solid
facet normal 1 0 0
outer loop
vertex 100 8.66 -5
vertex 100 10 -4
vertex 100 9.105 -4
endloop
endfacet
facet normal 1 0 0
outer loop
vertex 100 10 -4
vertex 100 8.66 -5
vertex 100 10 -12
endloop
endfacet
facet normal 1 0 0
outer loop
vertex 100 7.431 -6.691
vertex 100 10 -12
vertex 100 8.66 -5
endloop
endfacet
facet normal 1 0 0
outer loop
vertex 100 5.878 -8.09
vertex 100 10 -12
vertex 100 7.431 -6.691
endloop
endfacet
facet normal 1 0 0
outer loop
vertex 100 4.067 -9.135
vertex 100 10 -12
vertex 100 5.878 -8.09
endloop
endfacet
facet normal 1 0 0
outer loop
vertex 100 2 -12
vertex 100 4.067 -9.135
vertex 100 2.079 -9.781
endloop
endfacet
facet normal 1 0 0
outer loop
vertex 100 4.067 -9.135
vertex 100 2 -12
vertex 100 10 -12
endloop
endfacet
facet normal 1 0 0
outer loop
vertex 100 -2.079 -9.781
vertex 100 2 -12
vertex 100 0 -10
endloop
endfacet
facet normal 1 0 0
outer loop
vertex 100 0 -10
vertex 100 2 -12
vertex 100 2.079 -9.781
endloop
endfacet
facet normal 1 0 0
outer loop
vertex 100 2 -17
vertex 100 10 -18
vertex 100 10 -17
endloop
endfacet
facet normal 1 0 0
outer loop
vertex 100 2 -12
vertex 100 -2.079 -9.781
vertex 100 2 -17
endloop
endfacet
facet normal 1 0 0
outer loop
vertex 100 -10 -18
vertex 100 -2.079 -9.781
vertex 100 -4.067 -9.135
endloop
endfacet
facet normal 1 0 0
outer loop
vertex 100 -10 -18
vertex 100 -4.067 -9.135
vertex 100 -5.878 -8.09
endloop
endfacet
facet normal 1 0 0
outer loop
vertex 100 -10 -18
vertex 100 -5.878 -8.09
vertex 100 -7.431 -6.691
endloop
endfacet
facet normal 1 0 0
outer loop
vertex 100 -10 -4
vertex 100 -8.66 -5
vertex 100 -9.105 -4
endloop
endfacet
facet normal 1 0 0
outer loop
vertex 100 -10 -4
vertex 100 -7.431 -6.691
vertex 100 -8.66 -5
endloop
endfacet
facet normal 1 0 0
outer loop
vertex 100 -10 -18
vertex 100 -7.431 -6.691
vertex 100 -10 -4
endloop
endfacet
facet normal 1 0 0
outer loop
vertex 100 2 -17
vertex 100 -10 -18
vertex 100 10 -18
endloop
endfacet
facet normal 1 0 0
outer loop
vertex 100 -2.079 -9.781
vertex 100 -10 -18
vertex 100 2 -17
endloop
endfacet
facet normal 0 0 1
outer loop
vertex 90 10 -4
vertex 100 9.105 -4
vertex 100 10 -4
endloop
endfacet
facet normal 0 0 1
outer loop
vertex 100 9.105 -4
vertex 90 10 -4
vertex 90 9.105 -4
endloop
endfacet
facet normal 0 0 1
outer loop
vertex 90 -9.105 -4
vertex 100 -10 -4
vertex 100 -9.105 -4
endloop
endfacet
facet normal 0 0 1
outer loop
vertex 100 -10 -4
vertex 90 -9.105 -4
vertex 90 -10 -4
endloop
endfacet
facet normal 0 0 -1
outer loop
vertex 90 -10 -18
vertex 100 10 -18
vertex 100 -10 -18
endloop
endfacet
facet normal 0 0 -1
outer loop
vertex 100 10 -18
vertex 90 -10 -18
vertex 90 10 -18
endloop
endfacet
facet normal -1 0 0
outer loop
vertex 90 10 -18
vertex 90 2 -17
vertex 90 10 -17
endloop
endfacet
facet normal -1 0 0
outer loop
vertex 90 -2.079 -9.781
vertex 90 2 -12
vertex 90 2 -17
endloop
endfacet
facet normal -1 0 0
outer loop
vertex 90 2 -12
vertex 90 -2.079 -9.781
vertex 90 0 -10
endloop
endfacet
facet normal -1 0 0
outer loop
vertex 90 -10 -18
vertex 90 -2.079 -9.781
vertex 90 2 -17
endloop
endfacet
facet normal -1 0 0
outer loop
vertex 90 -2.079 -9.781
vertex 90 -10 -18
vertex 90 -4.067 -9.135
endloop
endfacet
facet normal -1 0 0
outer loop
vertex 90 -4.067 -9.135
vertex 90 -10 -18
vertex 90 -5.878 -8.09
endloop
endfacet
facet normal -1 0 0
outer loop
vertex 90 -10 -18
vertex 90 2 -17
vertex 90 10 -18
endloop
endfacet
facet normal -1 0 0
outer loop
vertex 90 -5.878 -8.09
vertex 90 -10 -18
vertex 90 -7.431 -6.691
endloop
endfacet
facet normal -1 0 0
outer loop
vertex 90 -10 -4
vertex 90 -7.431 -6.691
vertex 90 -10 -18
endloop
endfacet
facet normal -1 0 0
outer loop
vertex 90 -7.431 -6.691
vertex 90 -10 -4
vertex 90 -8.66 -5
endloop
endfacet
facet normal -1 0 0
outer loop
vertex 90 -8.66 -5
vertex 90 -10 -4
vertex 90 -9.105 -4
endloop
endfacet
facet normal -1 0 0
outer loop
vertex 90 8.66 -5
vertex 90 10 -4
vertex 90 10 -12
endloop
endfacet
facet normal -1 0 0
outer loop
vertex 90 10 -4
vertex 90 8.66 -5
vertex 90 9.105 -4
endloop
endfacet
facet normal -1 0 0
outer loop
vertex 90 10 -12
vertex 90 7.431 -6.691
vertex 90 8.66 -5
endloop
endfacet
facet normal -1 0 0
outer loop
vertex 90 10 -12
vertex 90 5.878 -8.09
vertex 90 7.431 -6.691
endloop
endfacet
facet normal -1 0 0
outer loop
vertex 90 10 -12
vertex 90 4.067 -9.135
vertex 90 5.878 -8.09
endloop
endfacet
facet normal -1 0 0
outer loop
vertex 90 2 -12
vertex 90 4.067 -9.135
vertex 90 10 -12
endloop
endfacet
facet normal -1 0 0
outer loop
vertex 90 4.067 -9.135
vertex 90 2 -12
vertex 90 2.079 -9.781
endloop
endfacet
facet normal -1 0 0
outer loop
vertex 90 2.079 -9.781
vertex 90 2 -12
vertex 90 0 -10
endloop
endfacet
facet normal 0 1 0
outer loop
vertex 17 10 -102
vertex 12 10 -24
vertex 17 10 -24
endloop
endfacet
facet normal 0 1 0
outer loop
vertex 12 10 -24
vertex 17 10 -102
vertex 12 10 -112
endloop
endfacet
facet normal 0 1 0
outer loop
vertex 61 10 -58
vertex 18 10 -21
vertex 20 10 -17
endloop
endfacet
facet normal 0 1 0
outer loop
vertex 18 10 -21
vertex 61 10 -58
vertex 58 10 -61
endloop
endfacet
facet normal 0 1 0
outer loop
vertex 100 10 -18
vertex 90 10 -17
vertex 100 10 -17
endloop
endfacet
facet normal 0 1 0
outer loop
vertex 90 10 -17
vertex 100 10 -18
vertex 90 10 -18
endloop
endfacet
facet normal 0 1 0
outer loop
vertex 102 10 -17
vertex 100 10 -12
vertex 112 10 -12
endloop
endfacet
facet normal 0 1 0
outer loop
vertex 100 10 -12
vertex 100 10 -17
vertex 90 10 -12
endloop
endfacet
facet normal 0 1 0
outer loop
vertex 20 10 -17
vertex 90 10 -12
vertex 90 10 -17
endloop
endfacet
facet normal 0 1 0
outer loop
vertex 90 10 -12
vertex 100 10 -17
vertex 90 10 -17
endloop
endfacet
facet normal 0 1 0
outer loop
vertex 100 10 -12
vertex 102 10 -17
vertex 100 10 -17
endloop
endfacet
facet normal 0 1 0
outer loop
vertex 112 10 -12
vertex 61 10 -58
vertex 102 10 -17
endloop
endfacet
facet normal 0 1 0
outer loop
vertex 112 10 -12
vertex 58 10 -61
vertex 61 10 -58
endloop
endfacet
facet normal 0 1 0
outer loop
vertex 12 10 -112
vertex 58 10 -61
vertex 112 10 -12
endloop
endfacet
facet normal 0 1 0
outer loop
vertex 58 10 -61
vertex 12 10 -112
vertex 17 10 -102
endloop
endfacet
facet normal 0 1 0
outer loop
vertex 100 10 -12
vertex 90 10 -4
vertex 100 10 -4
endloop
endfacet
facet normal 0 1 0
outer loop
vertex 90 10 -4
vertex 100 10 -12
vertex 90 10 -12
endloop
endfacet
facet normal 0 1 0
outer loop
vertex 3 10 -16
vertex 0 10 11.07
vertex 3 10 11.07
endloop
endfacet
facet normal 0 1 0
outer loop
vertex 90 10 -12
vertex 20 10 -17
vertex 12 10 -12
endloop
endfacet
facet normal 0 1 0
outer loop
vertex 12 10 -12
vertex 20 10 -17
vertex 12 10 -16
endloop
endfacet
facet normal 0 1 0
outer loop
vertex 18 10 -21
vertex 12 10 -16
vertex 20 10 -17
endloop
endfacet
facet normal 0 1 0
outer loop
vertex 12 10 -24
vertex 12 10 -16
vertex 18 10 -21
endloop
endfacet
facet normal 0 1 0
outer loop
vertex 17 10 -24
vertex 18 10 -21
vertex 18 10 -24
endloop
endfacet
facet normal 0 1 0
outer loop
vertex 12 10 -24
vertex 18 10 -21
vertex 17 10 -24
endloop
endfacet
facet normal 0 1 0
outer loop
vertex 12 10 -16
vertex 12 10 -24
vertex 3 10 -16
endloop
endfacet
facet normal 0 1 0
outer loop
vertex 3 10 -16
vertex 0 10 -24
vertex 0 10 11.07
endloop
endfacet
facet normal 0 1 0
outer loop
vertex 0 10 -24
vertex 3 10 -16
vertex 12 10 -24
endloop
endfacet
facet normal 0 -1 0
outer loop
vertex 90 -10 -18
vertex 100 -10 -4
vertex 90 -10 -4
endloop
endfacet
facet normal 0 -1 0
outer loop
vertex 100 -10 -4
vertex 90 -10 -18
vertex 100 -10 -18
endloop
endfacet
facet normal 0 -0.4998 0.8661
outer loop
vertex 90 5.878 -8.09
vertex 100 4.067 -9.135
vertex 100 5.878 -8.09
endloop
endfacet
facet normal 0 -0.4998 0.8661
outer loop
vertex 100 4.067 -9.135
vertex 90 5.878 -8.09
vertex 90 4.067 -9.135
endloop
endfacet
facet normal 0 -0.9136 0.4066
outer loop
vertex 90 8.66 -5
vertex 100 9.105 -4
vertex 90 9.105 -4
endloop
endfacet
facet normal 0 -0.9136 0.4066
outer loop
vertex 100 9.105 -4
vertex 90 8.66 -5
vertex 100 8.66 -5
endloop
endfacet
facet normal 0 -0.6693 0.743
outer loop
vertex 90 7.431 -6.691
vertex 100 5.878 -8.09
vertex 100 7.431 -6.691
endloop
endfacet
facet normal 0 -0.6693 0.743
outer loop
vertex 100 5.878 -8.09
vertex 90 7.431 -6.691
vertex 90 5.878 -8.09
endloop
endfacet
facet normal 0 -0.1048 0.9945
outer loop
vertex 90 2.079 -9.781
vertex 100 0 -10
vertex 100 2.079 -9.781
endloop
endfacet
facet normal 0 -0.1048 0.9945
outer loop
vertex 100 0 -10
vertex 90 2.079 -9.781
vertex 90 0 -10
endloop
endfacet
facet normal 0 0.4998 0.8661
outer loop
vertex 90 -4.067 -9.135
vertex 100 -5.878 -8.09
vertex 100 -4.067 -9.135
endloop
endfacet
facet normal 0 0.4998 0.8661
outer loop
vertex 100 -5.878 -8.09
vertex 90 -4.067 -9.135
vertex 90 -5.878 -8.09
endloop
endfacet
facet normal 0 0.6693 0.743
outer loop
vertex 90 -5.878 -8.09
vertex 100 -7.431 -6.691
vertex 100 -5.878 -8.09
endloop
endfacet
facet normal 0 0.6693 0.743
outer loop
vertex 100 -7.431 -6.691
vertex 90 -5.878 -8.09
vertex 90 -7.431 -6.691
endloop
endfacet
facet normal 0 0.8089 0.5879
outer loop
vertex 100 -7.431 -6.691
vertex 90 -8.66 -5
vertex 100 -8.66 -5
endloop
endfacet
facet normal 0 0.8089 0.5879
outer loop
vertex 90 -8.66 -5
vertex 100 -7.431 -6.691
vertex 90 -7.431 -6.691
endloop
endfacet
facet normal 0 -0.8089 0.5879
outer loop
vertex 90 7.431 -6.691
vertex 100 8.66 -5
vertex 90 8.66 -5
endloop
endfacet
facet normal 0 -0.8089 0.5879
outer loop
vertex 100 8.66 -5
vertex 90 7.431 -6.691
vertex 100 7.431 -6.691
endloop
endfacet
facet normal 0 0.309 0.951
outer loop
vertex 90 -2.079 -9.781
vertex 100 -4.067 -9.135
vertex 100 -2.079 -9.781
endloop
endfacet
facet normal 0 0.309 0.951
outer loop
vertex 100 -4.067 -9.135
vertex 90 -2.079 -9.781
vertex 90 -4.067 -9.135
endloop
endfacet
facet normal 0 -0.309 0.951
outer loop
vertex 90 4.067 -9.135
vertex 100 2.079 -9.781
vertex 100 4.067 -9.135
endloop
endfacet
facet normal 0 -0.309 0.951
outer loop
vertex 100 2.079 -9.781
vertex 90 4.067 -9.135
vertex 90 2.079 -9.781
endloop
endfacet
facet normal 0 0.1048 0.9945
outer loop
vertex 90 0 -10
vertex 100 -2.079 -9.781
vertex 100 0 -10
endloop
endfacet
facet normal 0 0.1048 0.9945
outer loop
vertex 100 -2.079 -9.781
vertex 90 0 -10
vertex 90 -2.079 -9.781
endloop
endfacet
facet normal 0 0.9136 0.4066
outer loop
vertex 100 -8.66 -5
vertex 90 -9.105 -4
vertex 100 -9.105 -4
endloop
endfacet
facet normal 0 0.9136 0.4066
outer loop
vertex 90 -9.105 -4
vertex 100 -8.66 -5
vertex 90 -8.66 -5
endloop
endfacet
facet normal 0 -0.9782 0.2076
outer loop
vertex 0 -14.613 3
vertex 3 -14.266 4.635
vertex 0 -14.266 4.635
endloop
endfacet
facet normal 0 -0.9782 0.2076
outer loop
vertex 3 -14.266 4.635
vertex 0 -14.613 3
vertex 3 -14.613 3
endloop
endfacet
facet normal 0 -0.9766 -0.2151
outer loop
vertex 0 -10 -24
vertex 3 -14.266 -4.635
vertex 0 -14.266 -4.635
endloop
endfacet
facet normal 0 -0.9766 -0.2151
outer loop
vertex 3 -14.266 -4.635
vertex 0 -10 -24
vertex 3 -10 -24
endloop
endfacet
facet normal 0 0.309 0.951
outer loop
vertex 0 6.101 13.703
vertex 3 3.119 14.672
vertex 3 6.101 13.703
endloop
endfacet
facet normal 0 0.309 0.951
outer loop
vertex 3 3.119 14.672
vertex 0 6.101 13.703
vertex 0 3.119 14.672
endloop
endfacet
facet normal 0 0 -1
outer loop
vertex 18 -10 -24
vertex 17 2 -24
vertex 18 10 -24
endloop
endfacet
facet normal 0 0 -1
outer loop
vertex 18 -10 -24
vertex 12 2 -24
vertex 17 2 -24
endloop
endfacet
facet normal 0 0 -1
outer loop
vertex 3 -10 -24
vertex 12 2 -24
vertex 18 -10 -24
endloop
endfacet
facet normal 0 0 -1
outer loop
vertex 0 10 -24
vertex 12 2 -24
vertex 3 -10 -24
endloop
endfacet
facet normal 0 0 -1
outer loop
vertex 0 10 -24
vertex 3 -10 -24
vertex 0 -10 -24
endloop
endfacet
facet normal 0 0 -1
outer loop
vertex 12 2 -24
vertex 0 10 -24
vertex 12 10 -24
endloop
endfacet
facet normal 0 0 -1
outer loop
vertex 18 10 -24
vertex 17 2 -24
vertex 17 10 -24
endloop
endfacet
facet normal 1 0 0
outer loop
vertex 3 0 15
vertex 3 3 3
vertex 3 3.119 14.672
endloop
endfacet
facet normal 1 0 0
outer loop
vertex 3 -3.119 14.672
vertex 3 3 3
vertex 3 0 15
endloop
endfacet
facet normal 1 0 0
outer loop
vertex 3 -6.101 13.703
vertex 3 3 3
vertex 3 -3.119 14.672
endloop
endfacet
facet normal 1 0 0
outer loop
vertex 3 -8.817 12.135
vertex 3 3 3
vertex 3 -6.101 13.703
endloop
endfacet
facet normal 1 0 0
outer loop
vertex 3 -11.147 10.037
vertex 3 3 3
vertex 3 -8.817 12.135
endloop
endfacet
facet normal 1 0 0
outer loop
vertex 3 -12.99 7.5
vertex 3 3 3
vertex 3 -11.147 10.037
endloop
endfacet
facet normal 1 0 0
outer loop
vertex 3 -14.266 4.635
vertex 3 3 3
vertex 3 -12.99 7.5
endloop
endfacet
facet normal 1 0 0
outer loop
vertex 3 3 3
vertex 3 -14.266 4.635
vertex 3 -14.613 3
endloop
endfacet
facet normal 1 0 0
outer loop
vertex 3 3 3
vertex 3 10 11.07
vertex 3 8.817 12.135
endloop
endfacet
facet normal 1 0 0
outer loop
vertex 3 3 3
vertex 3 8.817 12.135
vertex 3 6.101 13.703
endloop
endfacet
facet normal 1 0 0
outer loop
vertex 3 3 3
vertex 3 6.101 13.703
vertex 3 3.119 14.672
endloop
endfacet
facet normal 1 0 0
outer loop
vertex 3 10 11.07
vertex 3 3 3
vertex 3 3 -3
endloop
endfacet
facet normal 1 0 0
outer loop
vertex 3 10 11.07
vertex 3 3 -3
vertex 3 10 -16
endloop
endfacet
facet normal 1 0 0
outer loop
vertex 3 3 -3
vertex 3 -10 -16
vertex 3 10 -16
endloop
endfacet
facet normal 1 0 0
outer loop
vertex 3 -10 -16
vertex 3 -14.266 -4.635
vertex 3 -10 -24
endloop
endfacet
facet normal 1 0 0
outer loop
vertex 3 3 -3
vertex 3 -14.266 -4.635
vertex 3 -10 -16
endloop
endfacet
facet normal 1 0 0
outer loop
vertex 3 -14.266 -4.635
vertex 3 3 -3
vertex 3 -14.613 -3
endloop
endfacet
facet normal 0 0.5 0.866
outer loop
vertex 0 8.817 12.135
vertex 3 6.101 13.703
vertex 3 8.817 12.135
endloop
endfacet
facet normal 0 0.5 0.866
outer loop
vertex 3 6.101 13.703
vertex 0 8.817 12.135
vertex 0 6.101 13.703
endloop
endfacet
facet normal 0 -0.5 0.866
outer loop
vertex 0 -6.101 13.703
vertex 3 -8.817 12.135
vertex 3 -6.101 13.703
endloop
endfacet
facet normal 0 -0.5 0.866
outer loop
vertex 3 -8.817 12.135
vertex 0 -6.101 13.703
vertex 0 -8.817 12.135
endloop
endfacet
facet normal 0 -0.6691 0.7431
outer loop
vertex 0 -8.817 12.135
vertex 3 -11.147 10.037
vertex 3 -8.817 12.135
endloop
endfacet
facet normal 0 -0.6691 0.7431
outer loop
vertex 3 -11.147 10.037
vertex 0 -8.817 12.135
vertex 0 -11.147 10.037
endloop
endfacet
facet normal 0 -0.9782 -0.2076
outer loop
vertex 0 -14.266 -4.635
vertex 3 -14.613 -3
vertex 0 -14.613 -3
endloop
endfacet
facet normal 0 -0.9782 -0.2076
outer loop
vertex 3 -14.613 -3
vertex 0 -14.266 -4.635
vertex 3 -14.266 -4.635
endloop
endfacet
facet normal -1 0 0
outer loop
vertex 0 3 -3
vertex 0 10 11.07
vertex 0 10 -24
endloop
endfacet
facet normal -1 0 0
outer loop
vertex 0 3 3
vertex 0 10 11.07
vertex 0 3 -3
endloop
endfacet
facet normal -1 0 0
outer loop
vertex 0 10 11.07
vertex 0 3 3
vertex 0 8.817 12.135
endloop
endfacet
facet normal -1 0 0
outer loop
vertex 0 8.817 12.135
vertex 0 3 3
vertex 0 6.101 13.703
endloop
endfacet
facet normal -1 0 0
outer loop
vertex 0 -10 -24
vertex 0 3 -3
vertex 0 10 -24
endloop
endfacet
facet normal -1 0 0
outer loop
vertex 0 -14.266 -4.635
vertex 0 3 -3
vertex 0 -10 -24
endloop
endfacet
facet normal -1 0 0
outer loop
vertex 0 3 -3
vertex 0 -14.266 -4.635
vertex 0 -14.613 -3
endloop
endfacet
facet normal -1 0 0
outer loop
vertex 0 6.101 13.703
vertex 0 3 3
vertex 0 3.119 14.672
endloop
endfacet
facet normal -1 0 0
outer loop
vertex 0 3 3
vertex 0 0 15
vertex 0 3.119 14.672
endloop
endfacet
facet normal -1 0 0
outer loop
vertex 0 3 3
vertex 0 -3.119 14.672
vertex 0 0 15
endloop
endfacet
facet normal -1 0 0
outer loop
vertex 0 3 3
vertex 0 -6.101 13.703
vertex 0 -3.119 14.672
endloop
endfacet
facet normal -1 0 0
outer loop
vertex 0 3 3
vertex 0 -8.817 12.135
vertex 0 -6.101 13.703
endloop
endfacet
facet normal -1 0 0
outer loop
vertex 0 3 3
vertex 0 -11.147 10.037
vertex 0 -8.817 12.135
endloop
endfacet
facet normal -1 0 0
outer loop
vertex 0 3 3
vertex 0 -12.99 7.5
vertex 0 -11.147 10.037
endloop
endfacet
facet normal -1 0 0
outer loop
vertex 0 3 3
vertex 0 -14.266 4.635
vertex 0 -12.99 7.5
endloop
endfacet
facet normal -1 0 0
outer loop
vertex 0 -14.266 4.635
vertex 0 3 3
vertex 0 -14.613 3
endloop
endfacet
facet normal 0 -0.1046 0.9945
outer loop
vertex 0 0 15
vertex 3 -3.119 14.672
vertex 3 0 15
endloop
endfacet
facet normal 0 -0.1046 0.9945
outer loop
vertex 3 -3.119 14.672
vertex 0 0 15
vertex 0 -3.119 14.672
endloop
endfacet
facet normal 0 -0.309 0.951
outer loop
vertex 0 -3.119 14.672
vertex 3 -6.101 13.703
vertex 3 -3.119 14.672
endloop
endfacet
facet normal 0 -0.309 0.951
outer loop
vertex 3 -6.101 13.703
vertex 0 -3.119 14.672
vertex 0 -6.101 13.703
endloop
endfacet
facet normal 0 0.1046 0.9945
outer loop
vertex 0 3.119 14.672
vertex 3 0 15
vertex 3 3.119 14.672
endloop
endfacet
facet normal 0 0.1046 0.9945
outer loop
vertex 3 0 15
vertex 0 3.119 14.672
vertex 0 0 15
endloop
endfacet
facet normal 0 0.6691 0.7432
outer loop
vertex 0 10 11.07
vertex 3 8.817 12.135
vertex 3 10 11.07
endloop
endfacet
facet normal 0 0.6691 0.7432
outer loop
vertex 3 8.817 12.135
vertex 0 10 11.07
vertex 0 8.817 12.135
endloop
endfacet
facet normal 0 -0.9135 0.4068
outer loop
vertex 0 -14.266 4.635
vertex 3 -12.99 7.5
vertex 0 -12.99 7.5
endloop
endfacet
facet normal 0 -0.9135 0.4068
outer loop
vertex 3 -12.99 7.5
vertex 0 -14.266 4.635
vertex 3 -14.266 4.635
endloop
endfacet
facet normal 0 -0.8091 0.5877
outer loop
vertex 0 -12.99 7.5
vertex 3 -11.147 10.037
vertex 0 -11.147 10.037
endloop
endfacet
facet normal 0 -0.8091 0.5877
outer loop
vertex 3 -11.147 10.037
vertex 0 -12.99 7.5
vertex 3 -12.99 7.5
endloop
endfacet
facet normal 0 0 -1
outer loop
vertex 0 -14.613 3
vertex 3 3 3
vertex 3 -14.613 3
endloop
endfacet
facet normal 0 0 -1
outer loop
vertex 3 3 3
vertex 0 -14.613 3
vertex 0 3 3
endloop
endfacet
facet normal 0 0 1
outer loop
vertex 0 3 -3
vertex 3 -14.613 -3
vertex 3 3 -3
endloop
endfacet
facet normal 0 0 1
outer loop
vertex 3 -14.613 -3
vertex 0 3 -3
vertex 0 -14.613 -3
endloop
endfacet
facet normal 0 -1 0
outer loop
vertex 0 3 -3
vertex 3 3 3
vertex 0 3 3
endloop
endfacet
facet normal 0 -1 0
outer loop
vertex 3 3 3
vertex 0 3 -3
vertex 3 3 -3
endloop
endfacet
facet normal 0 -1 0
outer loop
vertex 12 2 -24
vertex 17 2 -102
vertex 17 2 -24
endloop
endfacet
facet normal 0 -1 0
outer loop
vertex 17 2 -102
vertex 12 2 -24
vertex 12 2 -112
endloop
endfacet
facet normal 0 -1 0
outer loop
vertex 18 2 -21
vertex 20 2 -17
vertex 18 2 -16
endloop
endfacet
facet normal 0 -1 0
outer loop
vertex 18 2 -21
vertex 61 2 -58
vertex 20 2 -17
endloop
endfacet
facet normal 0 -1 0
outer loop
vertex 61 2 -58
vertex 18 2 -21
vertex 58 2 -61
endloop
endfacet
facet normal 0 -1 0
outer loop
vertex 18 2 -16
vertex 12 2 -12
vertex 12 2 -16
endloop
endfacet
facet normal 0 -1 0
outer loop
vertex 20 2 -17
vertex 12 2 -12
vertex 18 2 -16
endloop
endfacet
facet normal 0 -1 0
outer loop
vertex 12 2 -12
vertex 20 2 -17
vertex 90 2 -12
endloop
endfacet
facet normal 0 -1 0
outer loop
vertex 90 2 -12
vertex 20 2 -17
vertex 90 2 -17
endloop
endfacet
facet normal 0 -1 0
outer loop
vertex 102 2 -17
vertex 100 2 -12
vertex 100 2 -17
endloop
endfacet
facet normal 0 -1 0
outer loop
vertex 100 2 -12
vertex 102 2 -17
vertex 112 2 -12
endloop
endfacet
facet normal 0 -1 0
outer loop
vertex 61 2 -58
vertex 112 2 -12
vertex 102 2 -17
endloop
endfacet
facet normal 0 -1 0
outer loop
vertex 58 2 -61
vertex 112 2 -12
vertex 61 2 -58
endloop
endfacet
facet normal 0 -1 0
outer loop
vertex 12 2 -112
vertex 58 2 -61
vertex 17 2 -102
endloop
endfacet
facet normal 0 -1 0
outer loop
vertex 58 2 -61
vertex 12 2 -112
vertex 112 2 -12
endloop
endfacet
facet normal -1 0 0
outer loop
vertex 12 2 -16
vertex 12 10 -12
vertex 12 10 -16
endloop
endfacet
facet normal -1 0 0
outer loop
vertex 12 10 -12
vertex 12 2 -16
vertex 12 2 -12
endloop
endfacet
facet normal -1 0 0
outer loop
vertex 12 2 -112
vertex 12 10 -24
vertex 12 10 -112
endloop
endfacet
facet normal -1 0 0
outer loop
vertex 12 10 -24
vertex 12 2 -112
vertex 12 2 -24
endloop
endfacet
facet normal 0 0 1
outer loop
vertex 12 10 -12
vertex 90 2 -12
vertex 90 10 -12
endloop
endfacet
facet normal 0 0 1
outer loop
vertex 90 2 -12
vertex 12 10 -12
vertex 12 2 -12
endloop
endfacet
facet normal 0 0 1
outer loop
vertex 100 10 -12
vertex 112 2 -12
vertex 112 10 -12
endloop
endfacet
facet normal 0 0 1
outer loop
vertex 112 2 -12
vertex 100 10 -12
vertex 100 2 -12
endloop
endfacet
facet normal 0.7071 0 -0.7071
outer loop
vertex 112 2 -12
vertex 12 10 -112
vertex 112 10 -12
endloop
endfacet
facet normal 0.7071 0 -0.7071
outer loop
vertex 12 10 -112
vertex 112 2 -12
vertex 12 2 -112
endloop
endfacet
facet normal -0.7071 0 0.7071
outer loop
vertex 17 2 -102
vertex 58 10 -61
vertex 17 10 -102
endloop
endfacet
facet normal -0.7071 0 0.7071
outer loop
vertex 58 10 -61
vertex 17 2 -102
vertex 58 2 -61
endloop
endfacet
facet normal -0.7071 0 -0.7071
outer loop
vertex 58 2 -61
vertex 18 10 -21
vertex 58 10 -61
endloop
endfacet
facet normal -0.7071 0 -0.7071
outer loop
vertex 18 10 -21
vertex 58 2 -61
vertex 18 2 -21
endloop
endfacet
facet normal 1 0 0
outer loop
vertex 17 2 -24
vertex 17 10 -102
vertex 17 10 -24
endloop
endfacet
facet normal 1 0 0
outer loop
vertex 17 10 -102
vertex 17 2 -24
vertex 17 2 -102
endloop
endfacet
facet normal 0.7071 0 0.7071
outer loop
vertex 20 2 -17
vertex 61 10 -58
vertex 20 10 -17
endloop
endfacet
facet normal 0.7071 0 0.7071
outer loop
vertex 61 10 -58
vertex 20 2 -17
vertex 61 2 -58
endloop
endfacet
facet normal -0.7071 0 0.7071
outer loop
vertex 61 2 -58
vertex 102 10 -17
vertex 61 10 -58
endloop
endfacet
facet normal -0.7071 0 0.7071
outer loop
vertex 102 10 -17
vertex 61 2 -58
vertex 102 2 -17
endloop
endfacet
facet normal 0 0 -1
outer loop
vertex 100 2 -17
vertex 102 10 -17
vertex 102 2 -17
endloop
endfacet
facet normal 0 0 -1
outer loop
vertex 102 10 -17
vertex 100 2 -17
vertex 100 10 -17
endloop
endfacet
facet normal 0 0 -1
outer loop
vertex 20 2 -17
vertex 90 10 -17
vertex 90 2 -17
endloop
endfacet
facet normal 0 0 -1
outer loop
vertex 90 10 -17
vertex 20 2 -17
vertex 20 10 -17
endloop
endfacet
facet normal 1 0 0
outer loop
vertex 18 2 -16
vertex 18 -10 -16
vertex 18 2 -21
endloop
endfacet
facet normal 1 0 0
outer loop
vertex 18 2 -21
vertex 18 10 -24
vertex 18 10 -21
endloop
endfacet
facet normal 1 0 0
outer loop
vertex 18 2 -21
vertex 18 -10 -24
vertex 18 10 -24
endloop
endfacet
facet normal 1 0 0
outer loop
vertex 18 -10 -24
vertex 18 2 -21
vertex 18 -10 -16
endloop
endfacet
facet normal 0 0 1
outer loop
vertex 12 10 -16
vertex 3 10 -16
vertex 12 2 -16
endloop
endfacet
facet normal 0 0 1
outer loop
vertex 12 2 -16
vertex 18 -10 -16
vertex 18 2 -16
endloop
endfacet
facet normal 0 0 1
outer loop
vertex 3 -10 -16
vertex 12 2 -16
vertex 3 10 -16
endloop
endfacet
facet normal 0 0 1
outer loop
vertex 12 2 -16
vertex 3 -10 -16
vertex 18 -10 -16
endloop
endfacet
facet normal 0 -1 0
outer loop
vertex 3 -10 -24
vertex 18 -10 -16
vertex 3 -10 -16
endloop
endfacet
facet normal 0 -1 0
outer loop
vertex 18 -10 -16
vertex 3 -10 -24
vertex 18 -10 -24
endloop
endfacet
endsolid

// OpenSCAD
module wall() {
    translate([-2.5, 0, -50])
        cube([5, 100, 200], true);
    
    translate([5, 0, -88.5])
        cube([10, 100, 123], true);
}

module rack() {
    rotate([0, 90, 0])
        cylinder(100 ,10, 10);
    
    rotate([0, 90, 0])
        cylinder(8 ,15, 15);
    
    translate([-5, 0, 0])
        rotate([0, 90, 0])
        cylinder(20 ,2.5, 2.5);
}

module support() {
    // frame
    translate([12, 2, -12])
        rotate([-90, 0, 0])
        linear_extrude(8) 
        polygon(points=[
            [0, 0], [0, 100], [100, 0], 
            [5, 8], [5, 90], [46, 49],
            [8, 5], [90, 5], [49, 46]],
            paths=[[0, 1, 2], [3, 4, 5], [6, 7, 8]]
    );

    // tube holder
    translate([90, -10, -18])
        difference() {
            cube([10, 20, 14]);

            translate([-1, 10, 18])
                rotate([0, 90, 0])
                cylinder(20, 10, 10);
        }
    
    // wall plate
    difference() {        
        intersection() {
            hull() {
                rotate([0, 90, 0])
                    cylinder(3, 15, 15);
                
                translate([0, -10, -24])
                    cube([3, 20, 8]);
            }
            
            translate([0, -90, -50])
                cube([10, 100, 100]);
        }
        
        translate([-1, -17, -3])
        cube([10, 20, 6]);

    }

    // plate connector
    translate([0, -10, -24])
        cube([18, 20, 8]);
    
}

% wall();
% translate([3, 0, 0]) rack();
support();
